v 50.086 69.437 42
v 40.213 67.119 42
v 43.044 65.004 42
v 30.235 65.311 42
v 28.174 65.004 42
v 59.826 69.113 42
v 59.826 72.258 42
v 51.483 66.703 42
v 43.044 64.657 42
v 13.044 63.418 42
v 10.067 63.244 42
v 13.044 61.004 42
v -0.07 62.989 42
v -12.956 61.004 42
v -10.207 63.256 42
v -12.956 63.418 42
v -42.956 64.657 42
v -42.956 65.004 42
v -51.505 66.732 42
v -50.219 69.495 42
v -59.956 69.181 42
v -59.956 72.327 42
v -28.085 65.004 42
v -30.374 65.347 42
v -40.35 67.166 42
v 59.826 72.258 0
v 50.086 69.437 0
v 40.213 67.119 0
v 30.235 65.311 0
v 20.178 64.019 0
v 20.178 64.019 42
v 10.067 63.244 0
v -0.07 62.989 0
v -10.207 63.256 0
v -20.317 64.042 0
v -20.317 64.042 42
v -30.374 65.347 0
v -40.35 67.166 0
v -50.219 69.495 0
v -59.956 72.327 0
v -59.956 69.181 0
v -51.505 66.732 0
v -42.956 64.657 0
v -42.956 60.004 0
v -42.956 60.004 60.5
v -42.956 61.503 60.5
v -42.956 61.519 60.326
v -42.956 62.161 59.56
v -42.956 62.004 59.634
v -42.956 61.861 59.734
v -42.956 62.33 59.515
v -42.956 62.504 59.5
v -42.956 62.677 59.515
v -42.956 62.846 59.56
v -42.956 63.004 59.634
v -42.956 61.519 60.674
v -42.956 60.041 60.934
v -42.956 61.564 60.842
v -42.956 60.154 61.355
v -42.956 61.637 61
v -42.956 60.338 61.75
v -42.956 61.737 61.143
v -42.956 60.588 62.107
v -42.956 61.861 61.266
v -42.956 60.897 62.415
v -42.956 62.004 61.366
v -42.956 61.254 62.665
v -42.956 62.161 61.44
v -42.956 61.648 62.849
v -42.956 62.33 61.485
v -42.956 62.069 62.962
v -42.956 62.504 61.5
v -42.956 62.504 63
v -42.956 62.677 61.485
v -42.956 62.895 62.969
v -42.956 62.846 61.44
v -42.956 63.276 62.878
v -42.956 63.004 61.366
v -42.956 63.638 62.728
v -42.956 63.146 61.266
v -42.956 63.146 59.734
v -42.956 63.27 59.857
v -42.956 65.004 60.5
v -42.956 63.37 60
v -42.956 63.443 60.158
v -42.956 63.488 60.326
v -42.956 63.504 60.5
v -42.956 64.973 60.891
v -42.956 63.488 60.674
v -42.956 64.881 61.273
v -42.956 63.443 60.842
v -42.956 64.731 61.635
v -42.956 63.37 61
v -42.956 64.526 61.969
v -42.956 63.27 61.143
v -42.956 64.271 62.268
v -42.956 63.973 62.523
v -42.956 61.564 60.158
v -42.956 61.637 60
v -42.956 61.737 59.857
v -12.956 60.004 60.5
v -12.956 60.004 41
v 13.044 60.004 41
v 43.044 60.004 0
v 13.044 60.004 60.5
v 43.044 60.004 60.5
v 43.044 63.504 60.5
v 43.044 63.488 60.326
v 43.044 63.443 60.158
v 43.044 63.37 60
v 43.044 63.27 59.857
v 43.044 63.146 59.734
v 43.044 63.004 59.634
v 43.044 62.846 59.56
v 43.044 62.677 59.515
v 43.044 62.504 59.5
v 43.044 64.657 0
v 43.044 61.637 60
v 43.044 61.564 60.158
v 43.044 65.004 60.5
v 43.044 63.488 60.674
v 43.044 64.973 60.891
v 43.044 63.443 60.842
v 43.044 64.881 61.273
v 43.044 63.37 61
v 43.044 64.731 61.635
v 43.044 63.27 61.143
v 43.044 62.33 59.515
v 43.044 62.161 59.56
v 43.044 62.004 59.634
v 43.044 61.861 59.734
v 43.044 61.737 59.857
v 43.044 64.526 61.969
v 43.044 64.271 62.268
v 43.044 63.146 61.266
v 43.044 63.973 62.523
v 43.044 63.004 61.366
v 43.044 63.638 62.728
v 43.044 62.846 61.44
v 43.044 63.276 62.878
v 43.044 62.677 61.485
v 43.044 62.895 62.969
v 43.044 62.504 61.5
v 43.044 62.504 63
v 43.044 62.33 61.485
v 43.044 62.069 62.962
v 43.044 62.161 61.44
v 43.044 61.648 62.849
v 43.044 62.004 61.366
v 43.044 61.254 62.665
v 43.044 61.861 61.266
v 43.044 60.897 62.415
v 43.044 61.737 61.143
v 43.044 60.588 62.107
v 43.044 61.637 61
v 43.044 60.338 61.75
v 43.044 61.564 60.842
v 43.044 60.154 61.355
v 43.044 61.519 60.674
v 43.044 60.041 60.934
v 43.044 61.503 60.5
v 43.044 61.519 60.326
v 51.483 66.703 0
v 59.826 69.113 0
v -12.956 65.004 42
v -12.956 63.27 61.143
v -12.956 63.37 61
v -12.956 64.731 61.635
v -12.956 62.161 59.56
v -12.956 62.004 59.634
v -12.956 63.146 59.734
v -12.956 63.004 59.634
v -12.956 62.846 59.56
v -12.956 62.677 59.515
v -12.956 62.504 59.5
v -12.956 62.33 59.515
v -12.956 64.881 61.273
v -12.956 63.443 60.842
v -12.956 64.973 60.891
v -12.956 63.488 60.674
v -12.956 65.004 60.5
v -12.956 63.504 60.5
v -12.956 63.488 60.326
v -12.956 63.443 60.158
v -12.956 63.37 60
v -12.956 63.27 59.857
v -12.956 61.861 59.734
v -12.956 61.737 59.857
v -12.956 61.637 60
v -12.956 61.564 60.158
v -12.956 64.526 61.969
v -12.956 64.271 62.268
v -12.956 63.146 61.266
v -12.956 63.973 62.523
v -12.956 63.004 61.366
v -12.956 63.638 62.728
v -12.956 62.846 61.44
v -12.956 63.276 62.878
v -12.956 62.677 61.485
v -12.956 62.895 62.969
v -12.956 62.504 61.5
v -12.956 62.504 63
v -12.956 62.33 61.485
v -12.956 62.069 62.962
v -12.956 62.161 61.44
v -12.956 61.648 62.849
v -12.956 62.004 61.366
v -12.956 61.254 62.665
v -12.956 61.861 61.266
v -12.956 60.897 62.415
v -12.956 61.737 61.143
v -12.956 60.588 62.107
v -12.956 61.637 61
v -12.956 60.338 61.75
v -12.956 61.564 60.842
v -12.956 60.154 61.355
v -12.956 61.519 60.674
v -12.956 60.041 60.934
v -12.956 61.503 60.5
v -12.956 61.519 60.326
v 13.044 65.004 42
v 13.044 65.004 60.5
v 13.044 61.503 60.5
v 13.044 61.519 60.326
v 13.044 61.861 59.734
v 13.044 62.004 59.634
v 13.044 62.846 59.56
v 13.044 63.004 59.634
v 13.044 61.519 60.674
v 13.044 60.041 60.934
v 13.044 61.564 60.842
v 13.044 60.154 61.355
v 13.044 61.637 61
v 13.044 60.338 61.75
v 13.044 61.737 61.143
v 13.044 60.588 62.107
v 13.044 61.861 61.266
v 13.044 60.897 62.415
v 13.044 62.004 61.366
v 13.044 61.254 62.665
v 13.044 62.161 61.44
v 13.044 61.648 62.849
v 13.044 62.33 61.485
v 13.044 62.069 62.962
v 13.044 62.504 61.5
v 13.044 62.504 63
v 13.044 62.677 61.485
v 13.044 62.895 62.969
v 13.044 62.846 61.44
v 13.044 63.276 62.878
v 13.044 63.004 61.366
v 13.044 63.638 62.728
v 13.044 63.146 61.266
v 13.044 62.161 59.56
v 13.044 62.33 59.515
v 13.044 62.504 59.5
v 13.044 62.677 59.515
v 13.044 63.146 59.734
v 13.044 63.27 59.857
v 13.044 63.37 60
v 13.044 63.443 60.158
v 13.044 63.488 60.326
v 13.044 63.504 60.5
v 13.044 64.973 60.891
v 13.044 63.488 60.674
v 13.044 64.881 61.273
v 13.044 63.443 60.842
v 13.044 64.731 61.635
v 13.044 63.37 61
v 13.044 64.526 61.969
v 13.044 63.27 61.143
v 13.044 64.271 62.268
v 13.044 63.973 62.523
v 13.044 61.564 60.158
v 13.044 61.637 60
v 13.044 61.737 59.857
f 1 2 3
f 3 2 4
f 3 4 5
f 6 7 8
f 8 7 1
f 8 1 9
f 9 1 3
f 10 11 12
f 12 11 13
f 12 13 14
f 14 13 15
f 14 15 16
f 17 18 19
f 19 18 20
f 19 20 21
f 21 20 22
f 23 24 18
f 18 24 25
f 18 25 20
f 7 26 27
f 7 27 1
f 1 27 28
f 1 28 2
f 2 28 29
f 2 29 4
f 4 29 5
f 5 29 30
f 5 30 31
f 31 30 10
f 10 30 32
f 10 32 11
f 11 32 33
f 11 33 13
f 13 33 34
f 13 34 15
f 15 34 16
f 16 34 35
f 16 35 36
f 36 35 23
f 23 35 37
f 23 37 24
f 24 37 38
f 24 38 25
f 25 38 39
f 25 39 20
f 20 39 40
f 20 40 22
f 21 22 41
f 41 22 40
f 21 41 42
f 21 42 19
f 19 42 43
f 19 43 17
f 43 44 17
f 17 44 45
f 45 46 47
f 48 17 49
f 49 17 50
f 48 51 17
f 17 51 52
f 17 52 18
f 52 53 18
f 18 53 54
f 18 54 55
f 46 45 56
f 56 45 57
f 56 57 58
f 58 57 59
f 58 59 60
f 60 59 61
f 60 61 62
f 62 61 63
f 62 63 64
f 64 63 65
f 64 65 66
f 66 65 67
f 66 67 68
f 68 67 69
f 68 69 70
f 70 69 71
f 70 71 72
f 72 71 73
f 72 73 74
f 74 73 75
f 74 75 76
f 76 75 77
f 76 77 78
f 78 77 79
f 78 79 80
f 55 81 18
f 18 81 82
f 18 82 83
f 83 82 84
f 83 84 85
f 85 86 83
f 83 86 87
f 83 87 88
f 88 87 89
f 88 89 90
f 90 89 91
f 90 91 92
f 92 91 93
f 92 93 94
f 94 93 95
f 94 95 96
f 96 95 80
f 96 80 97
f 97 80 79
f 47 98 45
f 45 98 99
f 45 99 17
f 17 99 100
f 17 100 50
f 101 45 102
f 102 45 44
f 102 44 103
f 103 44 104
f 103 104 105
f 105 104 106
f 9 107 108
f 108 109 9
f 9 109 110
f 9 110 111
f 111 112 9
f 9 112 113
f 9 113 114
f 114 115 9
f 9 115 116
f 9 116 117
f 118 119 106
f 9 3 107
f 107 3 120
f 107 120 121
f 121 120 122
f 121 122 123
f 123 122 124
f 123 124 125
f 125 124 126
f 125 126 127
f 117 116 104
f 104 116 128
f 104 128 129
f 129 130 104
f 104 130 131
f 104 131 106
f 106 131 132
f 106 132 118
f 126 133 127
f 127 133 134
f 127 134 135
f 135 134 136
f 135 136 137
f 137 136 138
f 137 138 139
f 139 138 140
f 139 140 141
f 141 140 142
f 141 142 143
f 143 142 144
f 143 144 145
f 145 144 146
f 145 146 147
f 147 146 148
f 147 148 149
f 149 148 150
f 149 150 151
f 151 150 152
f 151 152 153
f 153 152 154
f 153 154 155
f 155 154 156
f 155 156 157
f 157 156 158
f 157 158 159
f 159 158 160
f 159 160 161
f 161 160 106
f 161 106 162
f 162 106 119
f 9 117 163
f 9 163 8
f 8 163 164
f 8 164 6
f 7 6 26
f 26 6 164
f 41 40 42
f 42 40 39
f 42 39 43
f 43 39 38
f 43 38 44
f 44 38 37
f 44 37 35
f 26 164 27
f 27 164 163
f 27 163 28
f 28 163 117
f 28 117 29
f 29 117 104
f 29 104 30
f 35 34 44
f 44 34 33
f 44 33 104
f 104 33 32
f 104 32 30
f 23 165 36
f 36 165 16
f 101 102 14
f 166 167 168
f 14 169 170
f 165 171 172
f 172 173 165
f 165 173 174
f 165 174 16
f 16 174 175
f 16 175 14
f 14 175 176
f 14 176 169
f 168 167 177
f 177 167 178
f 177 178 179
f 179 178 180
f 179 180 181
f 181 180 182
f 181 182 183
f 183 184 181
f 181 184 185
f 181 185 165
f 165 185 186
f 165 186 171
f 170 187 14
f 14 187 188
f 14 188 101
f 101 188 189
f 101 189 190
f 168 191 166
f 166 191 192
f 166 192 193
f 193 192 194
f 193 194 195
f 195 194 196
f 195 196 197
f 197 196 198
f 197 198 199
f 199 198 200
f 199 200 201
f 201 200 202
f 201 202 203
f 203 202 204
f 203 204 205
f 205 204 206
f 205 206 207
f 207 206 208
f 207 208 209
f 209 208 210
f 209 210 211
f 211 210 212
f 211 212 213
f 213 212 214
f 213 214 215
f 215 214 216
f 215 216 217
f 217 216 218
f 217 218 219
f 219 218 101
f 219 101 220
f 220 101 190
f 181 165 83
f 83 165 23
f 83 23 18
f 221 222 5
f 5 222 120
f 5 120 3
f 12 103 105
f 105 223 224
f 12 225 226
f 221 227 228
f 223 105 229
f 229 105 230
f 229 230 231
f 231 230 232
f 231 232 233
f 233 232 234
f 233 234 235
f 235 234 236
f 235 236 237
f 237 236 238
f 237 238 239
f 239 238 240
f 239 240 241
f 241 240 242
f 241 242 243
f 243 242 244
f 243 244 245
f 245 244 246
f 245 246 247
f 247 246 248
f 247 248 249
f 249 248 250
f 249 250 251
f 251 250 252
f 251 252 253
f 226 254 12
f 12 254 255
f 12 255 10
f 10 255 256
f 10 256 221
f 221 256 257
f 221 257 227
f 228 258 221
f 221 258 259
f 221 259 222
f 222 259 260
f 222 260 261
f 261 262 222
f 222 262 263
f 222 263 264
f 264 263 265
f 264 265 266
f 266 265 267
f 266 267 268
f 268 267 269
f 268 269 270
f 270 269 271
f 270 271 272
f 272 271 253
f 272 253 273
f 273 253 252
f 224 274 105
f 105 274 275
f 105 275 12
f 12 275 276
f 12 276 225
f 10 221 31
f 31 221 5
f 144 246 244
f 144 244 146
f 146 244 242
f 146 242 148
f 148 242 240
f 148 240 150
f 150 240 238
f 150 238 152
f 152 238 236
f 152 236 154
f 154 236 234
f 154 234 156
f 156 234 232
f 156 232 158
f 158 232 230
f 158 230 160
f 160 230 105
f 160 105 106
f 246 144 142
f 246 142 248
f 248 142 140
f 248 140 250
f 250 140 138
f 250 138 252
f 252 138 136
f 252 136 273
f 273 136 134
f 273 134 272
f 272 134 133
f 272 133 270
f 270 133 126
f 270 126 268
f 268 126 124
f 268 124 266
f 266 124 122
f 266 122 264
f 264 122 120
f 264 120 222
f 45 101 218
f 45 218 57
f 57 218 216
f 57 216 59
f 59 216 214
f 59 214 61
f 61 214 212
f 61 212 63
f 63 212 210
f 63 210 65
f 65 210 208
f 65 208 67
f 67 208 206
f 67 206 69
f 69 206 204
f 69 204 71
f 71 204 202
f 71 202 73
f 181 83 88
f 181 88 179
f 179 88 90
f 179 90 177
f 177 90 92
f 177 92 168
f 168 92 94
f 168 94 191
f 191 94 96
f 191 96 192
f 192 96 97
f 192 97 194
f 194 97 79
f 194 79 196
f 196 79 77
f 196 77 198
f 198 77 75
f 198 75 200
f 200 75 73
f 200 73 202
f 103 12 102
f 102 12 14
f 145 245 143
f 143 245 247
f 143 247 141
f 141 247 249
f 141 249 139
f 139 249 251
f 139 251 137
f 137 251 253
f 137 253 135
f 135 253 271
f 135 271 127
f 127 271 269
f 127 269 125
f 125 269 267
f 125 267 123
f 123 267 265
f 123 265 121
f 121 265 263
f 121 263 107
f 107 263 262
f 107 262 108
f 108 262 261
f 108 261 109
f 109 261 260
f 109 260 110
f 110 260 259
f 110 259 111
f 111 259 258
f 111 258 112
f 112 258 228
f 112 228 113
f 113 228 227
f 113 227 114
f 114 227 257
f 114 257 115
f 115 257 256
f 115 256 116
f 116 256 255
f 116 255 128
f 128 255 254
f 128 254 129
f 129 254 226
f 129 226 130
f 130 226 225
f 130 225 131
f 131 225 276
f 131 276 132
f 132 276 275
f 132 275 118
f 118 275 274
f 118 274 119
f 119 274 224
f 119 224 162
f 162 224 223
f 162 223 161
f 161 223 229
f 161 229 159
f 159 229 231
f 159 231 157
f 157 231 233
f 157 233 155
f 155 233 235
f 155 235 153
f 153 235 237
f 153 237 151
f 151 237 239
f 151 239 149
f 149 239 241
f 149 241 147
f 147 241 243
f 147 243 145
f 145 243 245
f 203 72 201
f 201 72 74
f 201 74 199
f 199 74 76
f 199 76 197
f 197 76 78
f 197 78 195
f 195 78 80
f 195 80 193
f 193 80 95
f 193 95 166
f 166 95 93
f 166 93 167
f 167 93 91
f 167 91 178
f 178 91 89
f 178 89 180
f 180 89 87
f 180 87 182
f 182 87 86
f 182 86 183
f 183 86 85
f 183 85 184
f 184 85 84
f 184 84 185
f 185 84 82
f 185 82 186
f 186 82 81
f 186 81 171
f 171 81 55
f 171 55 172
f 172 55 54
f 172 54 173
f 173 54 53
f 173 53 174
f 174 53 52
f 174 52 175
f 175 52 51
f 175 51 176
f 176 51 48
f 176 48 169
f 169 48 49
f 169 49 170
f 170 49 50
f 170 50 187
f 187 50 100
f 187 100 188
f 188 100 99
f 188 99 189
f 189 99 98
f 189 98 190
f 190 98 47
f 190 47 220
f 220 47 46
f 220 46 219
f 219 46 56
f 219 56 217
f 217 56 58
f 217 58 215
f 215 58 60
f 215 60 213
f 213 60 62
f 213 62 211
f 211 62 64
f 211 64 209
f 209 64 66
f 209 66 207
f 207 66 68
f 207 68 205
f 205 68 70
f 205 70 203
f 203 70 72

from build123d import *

# Parameters (mm, degrees)
RESSALTO_EXTRUS_O1_DEPTH = 42
SKETCH5_W                = 30
SKETCH5_H                = 5
BOSS_EXTRUDE3_DEPTH      = 21
FILLET1_R                = 2.5
CHAMFER1_SIZE            = 1
ESBO_O2_R                = 1
CORTE_EXTRUS_O1_DEPTH    = 141.585462716


with BuildPart() as part:
    # Esboço1 → Ressalto-extrusão1 (new body)
    with BuildSketch(Plane.XY):
        with BuildLine():
            ThreePointArc((59.825652908, 72.25788881), (-0.070426749, 62.989274947), (-59.955692994, 72.327500038))
            Line((-59.955692994, 72.327500038), (-59.955692994, 69.181335803))
            ThreePointArc((-59.955692994, 69.181335803), (-51.505359903, 66.732393535), (-42.955692994, 64.656666352))
            Line((-42.955692994, 64.656666352), (-42.955692994, 60.00350113))
            Line((-42.955692994, 60.00350113), (43.044307006, 60.00350113))
            Line((43.044307006, 60.00350113), (43.044307006, 64.656666352))
            ThreePointArc((43.044307006, 64.656666352), (51.483258227, 66.702959658), (59.825652908, 69.112869408))
            Line((59.825652908, 69.112869408), (59.825652908, 72.25788881))
        make_face()
    extrude(amount=RESSALTO_EXTRUS_O1_DEPTH)

    # Sketch5 → Boss-Extrude3 (add)
    with BuildSketch(Plane.XY.offset(42)):
        with Locations((-27.955692994, 62.50350113)):
            Rectangle(SKETCH5_W, SKETCH5_H)
        with Locations((28.044307006, 62.50350113)):
            Rectangle(SKETCH5_W, SKETCH5_H)
    extrude(amount=BOSS_EXTRUDE3_DEPTH)

    # Fillet1
    fillet1_edges = [part.edges().sort_by_distance(p)[0] for p in [
        (-27.955692994, 65.00350113, 63),
        (-27.955692994, 60.00350113, 63),
        (28.044307006, 65.00350113, 63),
        (28.044307006, 60.00350113, 63),
    ]]
    fillet(fillet1_edges, radius=FILLET1_R - 0.0001)  # a hair under: the kernel refuses the full size

    # Chamfer1
    chamfer1_edges = [part.edges().sort_by_distance(p)[0] for p in [
        (0.044307006, 60.00350113, 42),
    ]]
    chamfer(chamfer1_edges, length=CHAMFER1_SIZE)

    # Esboço2 → Corte-extrusão1 (cut, through all)
    with BuildSketch(Plane.ZY.offset(42.955692994)):
        with Locations((60.5, 62.50350113)):
            Circle(ESBO_O2_R)
    extrude(amount=-CORTE_EXTRUS_O1_DEPTH, mode=Mode.SUBTRACT)


solid = part.part
